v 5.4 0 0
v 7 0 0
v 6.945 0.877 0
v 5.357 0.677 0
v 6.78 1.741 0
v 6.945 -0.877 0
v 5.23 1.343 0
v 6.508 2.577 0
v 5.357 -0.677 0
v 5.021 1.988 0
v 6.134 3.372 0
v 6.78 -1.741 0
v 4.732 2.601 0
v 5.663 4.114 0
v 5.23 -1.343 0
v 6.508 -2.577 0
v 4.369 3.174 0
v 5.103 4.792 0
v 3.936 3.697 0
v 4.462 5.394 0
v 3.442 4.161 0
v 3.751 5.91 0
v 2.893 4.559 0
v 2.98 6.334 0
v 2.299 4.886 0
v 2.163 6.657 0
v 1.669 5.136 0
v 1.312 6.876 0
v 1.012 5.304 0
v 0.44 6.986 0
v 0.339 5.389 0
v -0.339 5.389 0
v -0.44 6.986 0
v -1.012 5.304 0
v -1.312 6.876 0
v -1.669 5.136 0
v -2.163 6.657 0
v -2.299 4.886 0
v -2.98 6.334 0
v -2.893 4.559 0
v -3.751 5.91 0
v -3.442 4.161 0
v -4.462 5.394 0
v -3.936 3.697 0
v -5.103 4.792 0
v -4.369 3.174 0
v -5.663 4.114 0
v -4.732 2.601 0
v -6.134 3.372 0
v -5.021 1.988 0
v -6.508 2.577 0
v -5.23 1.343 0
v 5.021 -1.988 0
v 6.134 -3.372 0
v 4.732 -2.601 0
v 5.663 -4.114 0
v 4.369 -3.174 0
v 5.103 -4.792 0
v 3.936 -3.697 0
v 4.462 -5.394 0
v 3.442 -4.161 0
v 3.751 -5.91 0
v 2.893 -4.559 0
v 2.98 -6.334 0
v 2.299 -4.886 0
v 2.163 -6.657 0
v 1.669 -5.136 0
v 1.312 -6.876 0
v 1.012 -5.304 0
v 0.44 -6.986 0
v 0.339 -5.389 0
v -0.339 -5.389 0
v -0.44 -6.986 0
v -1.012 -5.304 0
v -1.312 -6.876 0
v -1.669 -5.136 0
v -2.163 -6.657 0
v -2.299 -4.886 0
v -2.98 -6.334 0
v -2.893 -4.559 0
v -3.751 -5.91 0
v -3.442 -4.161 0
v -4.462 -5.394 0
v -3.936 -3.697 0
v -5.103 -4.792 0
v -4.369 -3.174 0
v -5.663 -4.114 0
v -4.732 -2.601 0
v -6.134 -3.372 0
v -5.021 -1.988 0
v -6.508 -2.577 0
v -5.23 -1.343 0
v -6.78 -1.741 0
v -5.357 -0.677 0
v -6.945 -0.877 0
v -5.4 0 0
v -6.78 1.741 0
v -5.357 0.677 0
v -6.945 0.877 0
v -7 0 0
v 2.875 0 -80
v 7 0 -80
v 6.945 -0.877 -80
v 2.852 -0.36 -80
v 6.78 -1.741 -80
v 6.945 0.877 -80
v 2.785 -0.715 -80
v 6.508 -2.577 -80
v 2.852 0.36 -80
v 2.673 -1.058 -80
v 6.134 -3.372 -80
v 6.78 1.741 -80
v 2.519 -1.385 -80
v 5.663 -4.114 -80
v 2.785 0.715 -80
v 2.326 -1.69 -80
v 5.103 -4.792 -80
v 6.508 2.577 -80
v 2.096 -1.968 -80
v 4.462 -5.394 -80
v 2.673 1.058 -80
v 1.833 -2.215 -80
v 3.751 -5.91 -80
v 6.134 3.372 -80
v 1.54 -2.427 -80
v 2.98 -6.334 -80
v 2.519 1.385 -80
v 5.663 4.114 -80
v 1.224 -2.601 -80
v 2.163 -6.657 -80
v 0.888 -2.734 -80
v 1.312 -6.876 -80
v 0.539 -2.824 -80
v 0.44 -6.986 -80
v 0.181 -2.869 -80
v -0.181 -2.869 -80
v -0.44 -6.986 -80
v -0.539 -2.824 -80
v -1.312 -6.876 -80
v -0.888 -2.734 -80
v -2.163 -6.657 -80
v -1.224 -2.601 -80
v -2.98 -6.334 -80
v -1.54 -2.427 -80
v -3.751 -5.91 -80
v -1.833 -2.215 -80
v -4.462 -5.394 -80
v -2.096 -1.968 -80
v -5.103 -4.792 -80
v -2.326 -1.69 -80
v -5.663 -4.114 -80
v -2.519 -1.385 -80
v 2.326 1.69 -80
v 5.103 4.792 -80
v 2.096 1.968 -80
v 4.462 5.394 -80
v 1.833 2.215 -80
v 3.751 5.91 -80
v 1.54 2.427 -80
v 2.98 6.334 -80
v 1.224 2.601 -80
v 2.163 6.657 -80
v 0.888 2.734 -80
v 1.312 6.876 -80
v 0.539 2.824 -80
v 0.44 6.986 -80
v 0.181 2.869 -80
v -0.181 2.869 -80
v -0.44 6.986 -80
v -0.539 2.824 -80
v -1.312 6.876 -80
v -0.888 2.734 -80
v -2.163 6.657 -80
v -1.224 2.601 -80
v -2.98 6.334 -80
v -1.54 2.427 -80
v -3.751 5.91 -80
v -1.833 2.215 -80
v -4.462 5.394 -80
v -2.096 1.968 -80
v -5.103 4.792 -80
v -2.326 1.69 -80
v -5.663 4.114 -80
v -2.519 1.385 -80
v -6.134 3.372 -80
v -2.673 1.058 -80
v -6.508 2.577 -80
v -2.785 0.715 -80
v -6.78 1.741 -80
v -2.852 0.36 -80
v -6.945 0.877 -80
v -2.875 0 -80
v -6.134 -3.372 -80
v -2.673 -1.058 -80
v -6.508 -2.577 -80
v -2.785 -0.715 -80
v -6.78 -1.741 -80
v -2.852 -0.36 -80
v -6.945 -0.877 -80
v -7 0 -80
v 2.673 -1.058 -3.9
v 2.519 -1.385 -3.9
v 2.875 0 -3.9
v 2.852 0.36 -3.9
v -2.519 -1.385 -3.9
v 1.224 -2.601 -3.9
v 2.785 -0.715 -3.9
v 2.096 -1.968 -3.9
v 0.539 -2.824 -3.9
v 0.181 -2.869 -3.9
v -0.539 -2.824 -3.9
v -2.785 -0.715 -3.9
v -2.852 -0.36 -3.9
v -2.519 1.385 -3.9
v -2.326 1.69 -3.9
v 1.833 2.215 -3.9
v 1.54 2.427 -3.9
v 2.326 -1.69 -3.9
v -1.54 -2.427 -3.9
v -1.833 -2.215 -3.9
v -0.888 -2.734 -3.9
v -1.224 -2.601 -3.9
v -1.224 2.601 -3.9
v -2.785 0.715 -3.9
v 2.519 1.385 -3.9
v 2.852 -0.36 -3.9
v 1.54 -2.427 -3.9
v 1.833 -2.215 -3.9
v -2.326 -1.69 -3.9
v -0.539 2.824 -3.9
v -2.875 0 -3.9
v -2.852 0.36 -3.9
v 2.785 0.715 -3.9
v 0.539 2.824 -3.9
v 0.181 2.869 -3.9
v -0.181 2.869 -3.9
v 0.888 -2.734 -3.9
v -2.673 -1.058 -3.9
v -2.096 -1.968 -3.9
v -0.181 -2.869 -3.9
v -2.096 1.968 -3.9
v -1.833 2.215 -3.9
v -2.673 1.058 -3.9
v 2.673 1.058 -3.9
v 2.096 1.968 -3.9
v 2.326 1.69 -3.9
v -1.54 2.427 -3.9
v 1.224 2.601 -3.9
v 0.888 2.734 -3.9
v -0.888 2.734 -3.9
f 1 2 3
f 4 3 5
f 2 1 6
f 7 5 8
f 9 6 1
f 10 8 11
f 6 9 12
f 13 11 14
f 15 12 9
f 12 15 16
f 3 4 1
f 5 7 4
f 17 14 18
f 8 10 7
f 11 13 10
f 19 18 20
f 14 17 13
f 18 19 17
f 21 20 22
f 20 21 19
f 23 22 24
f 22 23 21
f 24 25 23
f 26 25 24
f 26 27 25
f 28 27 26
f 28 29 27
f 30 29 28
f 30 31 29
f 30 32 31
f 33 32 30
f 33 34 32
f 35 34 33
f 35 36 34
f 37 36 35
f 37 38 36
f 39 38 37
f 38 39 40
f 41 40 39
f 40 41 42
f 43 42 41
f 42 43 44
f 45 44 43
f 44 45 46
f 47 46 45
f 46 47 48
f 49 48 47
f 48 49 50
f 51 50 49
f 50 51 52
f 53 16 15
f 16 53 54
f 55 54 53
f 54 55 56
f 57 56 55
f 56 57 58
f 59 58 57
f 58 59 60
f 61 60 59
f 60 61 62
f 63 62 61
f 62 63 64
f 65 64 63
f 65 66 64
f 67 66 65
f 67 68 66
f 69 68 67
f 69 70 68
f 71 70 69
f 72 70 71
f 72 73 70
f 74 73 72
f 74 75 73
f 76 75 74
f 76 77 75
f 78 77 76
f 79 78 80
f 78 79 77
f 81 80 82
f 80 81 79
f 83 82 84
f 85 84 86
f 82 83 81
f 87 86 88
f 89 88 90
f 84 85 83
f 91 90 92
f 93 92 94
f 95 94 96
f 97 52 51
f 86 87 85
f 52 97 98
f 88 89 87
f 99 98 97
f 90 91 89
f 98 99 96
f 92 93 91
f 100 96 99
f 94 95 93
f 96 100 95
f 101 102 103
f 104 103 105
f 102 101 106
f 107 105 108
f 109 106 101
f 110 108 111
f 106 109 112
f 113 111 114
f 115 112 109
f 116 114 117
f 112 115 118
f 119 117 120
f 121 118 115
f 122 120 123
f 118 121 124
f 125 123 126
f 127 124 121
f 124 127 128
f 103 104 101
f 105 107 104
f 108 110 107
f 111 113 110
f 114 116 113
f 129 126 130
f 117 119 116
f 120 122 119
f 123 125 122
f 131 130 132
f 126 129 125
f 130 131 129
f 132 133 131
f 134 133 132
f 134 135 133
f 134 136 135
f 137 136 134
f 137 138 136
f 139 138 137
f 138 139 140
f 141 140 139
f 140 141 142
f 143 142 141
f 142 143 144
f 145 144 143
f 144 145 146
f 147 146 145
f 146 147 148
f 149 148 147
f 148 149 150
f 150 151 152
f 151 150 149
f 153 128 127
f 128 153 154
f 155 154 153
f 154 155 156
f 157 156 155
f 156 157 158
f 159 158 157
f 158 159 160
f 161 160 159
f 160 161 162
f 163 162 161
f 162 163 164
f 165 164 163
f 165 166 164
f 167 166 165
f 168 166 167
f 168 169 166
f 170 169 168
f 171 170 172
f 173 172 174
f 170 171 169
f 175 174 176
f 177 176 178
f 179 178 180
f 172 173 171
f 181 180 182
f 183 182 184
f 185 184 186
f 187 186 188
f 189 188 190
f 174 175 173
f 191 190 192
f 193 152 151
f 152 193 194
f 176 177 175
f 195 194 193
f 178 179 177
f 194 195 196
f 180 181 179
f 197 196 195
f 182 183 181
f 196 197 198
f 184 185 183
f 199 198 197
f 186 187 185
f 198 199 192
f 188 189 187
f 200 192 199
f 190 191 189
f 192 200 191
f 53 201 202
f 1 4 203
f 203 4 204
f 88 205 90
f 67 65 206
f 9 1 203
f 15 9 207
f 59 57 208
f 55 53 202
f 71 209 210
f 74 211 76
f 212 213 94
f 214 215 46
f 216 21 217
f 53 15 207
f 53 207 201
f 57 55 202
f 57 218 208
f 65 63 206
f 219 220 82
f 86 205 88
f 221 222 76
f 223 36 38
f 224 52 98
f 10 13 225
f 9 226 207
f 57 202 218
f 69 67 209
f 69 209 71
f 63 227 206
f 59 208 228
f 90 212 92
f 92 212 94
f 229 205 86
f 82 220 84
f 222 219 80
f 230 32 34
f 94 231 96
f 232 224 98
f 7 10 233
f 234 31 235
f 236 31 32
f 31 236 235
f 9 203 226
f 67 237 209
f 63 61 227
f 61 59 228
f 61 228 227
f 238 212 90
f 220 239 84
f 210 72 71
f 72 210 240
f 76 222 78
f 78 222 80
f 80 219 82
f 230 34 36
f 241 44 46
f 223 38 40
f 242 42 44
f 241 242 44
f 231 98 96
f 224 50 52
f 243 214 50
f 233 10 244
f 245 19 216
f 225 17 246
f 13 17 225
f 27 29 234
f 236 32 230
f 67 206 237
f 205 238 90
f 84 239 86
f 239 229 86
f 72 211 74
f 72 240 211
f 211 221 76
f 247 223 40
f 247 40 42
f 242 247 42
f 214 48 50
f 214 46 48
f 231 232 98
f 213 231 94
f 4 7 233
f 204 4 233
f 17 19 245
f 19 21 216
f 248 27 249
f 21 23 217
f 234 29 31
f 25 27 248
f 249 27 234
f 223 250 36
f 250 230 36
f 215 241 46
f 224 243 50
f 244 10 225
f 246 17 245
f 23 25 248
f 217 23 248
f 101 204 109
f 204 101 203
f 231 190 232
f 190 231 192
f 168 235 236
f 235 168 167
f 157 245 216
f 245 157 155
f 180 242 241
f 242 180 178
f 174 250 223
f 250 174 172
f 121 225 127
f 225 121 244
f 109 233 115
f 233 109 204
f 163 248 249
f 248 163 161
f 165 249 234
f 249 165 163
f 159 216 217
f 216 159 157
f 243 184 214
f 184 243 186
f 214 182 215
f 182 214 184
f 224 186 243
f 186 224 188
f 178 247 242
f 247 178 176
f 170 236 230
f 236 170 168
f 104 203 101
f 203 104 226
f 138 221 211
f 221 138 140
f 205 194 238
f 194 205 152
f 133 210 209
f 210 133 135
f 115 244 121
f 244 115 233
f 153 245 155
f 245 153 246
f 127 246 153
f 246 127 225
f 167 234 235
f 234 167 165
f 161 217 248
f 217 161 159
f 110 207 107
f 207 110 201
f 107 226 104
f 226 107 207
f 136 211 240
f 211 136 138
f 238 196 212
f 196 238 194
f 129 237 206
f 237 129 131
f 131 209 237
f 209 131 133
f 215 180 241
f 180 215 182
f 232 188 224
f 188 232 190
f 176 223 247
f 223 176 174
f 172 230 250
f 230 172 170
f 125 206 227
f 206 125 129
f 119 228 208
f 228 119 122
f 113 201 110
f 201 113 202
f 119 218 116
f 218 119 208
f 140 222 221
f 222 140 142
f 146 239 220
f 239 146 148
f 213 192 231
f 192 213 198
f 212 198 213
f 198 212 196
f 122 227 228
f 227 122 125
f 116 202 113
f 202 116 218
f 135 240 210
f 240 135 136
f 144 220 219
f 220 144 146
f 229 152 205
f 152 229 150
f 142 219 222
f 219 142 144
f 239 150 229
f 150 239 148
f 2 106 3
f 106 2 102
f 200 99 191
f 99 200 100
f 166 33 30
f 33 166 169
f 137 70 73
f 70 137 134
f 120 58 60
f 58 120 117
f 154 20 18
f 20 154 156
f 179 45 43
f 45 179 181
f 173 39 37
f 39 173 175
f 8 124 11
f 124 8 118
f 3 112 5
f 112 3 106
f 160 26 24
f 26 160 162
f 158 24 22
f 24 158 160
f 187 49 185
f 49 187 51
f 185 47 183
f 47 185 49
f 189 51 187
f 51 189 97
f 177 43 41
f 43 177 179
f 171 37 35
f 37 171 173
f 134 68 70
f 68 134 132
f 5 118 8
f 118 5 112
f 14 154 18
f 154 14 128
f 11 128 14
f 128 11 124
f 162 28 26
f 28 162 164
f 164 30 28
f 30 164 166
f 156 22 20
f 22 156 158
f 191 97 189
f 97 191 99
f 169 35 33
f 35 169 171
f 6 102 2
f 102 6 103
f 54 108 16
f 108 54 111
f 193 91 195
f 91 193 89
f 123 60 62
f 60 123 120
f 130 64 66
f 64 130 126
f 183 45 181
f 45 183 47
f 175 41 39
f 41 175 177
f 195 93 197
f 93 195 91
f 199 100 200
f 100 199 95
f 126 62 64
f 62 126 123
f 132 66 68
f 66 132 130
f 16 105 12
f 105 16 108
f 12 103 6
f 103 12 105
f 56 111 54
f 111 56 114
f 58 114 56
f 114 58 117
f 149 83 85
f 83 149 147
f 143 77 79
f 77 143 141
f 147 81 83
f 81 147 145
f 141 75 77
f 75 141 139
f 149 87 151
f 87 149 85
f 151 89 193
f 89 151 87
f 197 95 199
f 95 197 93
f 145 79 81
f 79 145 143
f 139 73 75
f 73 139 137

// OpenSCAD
$fn = 50;


difference() {
	union() {
		translate(v = [0, 0, -80.0000000000]) {
			cylinder(h = 80, r = 7.0000000000);
		}
		cylinder(h = 0, r = 16.0000000000);
	}
	union() {
		translate(v = [0, 0, 0]) {
			rotate(a = [0, 0, 0]) {
				difference() {
					union() {
						#translate(v = [0, 0, -80.0000000000]) {
							cylinder(h = 80, r = 2.6000000000);
						}
						#translate(v = [0, 0, -3.9000000000]) {
							cylinder(h = 3.9000000000, r1 = 2.8750000000, r2 = 5.4000000000);
						}
						#translate(v = [0, 0, -80.0000000000]) {
							cylinder(h = 80, r = 2.8750000000);
						}
						#translate(v = [0, 0, -80.0000000000]) {
							cylinder(h = 80, r = 2.6000000000);
						}
					}
					union();
				}
			}
		}
	}
}
